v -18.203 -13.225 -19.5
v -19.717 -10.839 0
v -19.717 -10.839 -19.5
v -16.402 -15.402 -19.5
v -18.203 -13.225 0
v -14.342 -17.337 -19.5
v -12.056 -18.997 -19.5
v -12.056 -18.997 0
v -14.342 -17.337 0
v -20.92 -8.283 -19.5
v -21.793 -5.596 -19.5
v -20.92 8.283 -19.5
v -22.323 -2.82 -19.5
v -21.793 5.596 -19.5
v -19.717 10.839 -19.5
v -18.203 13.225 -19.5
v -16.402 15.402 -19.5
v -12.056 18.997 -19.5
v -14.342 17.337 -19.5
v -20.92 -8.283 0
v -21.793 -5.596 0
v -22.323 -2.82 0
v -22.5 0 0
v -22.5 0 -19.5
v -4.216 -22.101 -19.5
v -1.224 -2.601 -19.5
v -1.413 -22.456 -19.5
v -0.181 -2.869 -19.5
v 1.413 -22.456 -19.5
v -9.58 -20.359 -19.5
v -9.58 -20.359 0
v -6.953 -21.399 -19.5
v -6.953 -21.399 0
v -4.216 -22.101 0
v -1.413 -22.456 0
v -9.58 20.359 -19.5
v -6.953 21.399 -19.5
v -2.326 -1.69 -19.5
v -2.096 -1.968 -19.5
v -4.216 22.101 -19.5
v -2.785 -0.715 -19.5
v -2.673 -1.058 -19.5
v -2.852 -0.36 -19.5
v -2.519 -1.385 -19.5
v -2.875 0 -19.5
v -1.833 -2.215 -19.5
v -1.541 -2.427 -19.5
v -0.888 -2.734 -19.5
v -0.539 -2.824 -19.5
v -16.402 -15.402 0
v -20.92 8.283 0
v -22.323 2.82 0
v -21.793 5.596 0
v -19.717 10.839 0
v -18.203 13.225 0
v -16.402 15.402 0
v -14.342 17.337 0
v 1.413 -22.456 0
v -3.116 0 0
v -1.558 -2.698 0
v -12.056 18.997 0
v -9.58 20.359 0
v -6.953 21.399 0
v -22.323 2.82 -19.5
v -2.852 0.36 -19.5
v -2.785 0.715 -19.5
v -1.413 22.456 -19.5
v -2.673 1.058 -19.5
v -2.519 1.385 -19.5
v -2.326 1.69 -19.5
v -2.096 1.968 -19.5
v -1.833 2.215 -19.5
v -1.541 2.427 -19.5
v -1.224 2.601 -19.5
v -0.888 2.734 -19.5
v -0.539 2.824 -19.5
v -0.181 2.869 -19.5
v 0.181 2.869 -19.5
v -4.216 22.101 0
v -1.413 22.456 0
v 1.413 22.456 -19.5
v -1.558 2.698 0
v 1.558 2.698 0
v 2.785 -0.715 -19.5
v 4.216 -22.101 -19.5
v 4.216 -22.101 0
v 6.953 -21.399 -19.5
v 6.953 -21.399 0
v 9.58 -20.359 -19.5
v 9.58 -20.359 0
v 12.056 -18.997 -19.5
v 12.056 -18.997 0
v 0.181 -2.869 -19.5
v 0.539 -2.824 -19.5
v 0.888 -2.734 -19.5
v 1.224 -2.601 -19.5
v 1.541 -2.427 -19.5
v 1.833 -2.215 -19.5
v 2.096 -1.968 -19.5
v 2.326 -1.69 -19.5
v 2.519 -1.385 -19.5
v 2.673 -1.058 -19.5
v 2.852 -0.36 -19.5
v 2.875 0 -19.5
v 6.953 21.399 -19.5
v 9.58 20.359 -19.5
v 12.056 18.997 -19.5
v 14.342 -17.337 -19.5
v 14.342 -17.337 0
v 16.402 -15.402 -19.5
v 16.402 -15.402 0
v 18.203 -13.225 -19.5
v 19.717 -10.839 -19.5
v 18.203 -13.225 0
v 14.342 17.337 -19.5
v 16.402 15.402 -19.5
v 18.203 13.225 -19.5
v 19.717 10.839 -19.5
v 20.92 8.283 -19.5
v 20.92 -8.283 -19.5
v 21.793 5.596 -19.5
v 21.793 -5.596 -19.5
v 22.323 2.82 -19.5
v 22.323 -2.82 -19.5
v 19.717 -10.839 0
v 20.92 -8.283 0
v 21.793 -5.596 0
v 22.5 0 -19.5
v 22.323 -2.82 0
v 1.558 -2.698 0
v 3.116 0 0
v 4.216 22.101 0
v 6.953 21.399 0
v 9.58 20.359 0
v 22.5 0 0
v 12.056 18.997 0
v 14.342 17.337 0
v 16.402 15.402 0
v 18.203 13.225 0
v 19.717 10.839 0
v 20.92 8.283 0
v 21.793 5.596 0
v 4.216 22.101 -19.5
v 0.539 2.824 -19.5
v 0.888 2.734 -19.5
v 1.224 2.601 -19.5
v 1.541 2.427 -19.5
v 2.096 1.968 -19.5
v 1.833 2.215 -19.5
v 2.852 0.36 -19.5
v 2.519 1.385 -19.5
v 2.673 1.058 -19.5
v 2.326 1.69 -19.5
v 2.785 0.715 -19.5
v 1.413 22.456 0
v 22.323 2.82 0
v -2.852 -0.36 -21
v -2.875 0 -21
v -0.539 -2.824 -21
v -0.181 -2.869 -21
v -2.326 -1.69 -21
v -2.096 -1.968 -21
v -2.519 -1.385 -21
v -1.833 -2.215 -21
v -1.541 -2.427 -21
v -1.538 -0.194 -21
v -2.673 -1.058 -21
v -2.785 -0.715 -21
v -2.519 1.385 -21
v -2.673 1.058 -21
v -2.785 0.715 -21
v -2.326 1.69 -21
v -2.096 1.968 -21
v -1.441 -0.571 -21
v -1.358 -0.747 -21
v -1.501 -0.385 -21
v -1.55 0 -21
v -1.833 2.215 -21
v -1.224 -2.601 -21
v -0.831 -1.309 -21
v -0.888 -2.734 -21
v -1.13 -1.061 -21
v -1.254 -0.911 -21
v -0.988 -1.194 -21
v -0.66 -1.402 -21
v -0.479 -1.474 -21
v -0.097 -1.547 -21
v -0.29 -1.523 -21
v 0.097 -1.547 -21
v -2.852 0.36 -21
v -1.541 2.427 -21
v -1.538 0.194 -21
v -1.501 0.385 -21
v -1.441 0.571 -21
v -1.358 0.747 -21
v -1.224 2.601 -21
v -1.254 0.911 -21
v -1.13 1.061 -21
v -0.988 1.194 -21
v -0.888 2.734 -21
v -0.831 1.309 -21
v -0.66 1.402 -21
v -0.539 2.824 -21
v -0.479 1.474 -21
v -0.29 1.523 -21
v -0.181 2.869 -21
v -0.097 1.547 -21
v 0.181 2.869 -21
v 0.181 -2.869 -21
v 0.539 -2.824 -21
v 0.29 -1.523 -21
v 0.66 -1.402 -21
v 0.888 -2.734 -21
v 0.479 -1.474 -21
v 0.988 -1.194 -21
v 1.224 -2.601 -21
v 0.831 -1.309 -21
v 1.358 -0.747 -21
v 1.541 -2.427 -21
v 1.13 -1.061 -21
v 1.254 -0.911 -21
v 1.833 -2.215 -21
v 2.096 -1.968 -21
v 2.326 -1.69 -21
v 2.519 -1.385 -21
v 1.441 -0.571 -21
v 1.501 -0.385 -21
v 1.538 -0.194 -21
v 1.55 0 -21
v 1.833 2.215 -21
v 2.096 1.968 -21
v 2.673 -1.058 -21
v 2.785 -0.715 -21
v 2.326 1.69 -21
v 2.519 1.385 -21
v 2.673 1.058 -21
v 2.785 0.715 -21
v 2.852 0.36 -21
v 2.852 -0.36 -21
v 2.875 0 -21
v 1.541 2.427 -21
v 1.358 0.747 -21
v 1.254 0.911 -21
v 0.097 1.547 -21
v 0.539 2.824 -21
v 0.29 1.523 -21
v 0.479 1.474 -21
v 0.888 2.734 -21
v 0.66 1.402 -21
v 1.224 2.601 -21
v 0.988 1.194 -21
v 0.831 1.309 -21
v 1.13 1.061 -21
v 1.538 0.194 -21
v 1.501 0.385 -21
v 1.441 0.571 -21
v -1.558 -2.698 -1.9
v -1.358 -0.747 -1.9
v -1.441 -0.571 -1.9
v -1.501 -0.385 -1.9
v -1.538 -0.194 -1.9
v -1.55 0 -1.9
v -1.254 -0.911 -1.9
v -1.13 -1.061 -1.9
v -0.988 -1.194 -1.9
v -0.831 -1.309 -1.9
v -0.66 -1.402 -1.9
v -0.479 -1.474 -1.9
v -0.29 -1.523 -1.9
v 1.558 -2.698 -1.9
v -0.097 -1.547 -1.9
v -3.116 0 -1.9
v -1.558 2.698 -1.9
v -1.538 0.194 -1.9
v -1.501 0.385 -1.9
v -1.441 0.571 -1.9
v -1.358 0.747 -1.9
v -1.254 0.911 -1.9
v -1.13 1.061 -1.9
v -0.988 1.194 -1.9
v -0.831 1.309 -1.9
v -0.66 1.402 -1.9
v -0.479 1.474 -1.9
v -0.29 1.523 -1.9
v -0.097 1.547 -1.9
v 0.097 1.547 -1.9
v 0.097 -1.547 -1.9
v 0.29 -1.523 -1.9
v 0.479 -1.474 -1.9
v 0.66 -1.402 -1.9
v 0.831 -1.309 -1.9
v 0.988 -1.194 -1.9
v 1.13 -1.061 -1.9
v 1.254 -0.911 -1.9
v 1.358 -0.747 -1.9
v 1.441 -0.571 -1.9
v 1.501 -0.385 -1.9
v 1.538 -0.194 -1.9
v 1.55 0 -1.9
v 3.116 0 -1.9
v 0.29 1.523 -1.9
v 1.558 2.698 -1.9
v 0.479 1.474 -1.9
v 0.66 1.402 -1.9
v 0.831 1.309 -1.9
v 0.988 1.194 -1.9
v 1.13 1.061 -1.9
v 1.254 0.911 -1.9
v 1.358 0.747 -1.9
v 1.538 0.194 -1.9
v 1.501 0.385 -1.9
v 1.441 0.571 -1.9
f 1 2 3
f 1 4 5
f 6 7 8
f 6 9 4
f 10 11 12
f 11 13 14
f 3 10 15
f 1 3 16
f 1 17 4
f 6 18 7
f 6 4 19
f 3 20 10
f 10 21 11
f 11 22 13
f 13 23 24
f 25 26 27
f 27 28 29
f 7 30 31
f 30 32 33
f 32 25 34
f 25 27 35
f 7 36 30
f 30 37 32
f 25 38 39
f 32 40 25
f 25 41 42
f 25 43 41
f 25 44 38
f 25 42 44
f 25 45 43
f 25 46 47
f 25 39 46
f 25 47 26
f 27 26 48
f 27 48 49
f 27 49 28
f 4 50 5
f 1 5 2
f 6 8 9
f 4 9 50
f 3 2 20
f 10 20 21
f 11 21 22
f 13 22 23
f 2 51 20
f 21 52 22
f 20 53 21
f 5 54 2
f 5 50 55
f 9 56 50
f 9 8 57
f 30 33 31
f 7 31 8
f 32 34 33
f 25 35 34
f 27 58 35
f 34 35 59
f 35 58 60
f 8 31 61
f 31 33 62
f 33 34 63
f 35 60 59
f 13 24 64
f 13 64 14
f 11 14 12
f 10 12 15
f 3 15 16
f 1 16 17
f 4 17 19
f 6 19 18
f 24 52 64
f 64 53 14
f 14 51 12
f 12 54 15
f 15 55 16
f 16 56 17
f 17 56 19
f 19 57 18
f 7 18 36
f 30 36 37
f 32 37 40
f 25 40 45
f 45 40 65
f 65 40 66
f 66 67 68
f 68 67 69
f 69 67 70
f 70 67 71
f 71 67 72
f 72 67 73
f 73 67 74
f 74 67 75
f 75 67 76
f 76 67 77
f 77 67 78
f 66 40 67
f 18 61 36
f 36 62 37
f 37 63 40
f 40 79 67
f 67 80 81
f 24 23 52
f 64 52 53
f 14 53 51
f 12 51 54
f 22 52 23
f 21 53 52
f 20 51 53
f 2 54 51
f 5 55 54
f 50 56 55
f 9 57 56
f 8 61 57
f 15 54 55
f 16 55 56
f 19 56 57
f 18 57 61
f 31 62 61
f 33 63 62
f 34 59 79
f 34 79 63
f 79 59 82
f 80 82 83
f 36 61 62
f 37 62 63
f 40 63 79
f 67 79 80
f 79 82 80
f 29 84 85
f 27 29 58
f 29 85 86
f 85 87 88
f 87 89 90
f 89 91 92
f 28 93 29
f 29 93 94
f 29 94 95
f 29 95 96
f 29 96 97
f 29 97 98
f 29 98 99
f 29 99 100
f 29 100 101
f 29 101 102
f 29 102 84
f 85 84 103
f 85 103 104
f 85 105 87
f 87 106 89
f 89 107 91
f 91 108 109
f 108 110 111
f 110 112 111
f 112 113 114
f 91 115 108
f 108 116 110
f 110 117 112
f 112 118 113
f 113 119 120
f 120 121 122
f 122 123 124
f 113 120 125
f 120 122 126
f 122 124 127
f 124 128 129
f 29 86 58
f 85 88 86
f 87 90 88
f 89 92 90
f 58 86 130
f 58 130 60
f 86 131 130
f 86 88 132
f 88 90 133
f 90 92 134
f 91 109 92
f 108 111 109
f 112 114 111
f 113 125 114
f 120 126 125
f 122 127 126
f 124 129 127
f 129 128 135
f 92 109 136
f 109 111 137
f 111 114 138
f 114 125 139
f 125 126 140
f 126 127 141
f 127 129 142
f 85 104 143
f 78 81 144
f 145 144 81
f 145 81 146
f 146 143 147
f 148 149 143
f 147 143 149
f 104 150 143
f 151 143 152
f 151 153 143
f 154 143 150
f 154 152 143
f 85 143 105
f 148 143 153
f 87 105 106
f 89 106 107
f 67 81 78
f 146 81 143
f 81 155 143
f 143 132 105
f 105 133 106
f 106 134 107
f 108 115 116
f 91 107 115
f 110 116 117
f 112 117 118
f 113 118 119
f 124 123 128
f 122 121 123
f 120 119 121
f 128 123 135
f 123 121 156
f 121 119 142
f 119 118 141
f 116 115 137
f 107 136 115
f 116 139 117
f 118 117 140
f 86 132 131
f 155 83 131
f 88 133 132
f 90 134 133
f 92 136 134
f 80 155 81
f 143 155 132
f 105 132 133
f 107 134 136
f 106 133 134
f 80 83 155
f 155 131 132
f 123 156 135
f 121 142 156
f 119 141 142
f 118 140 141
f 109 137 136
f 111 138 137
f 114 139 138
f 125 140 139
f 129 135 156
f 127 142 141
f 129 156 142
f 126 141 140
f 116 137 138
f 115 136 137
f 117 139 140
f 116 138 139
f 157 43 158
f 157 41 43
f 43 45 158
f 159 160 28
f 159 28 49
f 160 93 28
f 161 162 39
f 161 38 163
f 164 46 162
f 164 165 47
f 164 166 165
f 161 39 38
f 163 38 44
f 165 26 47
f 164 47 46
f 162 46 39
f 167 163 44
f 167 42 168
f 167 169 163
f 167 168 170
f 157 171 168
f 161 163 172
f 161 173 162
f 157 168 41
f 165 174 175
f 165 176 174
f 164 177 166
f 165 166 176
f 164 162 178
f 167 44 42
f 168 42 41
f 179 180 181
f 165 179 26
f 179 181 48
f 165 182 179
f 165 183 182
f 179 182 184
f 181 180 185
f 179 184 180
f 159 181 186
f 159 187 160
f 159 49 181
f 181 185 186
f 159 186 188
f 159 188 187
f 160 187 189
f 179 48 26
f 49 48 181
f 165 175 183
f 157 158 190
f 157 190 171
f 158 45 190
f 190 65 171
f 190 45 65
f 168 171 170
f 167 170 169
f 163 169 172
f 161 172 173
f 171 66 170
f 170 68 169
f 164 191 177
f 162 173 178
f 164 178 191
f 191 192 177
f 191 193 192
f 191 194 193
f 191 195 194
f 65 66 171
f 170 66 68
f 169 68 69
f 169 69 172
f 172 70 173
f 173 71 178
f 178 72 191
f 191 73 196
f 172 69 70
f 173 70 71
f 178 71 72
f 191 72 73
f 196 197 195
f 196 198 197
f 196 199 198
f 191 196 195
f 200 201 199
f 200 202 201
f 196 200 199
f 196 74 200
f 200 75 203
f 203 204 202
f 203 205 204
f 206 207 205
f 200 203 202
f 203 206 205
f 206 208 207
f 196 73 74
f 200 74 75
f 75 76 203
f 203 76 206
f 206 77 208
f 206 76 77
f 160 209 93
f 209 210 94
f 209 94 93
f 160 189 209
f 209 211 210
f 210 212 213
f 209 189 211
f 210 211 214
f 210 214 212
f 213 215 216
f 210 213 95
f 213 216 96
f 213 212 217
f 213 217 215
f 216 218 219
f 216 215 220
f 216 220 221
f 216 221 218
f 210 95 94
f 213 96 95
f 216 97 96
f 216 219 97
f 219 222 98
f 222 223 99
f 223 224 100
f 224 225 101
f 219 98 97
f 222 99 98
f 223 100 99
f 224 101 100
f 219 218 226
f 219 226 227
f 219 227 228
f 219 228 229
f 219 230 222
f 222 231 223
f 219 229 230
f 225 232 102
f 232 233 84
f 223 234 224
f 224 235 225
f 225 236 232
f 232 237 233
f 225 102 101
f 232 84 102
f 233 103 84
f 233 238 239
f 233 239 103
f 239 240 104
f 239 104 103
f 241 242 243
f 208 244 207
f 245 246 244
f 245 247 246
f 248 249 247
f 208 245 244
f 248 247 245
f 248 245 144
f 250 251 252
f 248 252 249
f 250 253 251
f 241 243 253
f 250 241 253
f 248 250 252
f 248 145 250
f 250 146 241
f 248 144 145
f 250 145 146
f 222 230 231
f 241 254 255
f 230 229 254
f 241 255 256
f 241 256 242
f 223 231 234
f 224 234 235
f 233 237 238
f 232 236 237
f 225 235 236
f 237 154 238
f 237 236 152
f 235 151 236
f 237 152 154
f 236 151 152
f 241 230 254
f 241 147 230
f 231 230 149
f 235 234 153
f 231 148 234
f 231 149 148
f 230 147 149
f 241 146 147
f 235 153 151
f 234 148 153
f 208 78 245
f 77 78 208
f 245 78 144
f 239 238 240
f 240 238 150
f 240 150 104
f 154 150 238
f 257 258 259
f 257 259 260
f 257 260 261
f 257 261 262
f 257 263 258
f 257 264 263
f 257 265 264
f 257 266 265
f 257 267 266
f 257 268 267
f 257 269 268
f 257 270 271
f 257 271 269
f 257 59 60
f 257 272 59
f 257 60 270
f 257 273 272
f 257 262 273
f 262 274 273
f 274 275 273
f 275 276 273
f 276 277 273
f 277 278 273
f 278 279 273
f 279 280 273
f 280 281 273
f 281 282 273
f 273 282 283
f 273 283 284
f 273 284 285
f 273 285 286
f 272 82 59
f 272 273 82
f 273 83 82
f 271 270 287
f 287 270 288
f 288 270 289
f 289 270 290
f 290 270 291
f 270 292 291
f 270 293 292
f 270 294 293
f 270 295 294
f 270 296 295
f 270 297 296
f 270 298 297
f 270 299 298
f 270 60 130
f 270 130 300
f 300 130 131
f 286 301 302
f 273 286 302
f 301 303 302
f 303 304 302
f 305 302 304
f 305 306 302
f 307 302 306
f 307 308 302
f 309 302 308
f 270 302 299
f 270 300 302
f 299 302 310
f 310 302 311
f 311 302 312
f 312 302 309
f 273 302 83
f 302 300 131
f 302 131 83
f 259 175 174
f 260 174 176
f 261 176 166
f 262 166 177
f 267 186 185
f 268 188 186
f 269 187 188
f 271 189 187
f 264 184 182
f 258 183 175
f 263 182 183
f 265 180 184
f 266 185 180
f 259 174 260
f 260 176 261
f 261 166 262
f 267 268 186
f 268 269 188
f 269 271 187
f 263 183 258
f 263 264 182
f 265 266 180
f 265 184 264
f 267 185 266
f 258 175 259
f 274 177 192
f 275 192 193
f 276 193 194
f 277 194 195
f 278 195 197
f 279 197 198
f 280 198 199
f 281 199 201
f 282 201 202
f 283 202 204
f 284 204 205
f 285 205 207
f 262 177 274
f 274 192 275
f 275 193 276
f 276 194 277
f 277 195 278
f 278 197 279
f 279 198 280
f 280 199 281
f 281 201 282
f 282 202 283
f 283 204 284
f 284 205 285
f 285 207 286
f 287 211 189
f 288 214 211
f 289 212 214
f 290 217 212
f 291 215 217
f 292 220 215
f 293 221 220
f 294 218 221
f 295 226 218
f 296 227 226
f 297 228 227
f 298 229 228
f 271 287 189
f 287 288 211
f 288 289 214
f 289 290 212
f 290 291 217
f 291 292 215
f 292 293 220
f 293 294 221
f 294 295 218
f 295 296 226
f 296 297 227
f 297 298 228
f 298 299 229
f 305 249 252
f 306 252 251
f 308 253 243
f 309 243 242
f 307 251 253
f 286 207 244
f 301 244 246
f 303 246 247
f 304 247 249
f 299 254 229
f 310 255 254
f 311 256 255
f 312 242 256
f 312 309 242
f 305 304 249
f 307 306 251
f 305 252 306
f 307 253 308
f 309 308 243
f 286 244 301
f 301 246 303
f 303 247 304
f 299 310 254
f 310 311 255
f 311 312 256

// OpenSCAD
$fn = 50;


difference() {
	union() {
		translate(v = [0, 0, -19.5000000000]) {
			cylinder(h = 19.5000000000, r = 22.5000000000);
		}
		#translate(v = [0, 0, -21.0000000000]) {
			cylinder(h = 21, r = 2.8750000000);
		}
	}
	union() {
		translate(v = [0, 0, 0]) {
			rotate(a = [0, 0, 0]) {
				difference() {
					union() {
						translate(v = [0, 0, -1.9000000000]) {
							linear_extrude(height = 1.9000000000) {
								polygon(points = [[3.1158000000, 0.0000000000], [1.5579000000, 2.6983619531], [-1.5579000000, 2.6983619531], [-3.1158000000, 0.0000000000], [-1.5579000000, -2.6983619531], [1.5579000000, -2.6983619531]]);
							}
						}
					}
					union();
				}
			}
		}
		#translate(v = [0, 0, -100.0000000000]) {
			cylinder(h = 200, r = 1.5500000000);
		}
	}
}
